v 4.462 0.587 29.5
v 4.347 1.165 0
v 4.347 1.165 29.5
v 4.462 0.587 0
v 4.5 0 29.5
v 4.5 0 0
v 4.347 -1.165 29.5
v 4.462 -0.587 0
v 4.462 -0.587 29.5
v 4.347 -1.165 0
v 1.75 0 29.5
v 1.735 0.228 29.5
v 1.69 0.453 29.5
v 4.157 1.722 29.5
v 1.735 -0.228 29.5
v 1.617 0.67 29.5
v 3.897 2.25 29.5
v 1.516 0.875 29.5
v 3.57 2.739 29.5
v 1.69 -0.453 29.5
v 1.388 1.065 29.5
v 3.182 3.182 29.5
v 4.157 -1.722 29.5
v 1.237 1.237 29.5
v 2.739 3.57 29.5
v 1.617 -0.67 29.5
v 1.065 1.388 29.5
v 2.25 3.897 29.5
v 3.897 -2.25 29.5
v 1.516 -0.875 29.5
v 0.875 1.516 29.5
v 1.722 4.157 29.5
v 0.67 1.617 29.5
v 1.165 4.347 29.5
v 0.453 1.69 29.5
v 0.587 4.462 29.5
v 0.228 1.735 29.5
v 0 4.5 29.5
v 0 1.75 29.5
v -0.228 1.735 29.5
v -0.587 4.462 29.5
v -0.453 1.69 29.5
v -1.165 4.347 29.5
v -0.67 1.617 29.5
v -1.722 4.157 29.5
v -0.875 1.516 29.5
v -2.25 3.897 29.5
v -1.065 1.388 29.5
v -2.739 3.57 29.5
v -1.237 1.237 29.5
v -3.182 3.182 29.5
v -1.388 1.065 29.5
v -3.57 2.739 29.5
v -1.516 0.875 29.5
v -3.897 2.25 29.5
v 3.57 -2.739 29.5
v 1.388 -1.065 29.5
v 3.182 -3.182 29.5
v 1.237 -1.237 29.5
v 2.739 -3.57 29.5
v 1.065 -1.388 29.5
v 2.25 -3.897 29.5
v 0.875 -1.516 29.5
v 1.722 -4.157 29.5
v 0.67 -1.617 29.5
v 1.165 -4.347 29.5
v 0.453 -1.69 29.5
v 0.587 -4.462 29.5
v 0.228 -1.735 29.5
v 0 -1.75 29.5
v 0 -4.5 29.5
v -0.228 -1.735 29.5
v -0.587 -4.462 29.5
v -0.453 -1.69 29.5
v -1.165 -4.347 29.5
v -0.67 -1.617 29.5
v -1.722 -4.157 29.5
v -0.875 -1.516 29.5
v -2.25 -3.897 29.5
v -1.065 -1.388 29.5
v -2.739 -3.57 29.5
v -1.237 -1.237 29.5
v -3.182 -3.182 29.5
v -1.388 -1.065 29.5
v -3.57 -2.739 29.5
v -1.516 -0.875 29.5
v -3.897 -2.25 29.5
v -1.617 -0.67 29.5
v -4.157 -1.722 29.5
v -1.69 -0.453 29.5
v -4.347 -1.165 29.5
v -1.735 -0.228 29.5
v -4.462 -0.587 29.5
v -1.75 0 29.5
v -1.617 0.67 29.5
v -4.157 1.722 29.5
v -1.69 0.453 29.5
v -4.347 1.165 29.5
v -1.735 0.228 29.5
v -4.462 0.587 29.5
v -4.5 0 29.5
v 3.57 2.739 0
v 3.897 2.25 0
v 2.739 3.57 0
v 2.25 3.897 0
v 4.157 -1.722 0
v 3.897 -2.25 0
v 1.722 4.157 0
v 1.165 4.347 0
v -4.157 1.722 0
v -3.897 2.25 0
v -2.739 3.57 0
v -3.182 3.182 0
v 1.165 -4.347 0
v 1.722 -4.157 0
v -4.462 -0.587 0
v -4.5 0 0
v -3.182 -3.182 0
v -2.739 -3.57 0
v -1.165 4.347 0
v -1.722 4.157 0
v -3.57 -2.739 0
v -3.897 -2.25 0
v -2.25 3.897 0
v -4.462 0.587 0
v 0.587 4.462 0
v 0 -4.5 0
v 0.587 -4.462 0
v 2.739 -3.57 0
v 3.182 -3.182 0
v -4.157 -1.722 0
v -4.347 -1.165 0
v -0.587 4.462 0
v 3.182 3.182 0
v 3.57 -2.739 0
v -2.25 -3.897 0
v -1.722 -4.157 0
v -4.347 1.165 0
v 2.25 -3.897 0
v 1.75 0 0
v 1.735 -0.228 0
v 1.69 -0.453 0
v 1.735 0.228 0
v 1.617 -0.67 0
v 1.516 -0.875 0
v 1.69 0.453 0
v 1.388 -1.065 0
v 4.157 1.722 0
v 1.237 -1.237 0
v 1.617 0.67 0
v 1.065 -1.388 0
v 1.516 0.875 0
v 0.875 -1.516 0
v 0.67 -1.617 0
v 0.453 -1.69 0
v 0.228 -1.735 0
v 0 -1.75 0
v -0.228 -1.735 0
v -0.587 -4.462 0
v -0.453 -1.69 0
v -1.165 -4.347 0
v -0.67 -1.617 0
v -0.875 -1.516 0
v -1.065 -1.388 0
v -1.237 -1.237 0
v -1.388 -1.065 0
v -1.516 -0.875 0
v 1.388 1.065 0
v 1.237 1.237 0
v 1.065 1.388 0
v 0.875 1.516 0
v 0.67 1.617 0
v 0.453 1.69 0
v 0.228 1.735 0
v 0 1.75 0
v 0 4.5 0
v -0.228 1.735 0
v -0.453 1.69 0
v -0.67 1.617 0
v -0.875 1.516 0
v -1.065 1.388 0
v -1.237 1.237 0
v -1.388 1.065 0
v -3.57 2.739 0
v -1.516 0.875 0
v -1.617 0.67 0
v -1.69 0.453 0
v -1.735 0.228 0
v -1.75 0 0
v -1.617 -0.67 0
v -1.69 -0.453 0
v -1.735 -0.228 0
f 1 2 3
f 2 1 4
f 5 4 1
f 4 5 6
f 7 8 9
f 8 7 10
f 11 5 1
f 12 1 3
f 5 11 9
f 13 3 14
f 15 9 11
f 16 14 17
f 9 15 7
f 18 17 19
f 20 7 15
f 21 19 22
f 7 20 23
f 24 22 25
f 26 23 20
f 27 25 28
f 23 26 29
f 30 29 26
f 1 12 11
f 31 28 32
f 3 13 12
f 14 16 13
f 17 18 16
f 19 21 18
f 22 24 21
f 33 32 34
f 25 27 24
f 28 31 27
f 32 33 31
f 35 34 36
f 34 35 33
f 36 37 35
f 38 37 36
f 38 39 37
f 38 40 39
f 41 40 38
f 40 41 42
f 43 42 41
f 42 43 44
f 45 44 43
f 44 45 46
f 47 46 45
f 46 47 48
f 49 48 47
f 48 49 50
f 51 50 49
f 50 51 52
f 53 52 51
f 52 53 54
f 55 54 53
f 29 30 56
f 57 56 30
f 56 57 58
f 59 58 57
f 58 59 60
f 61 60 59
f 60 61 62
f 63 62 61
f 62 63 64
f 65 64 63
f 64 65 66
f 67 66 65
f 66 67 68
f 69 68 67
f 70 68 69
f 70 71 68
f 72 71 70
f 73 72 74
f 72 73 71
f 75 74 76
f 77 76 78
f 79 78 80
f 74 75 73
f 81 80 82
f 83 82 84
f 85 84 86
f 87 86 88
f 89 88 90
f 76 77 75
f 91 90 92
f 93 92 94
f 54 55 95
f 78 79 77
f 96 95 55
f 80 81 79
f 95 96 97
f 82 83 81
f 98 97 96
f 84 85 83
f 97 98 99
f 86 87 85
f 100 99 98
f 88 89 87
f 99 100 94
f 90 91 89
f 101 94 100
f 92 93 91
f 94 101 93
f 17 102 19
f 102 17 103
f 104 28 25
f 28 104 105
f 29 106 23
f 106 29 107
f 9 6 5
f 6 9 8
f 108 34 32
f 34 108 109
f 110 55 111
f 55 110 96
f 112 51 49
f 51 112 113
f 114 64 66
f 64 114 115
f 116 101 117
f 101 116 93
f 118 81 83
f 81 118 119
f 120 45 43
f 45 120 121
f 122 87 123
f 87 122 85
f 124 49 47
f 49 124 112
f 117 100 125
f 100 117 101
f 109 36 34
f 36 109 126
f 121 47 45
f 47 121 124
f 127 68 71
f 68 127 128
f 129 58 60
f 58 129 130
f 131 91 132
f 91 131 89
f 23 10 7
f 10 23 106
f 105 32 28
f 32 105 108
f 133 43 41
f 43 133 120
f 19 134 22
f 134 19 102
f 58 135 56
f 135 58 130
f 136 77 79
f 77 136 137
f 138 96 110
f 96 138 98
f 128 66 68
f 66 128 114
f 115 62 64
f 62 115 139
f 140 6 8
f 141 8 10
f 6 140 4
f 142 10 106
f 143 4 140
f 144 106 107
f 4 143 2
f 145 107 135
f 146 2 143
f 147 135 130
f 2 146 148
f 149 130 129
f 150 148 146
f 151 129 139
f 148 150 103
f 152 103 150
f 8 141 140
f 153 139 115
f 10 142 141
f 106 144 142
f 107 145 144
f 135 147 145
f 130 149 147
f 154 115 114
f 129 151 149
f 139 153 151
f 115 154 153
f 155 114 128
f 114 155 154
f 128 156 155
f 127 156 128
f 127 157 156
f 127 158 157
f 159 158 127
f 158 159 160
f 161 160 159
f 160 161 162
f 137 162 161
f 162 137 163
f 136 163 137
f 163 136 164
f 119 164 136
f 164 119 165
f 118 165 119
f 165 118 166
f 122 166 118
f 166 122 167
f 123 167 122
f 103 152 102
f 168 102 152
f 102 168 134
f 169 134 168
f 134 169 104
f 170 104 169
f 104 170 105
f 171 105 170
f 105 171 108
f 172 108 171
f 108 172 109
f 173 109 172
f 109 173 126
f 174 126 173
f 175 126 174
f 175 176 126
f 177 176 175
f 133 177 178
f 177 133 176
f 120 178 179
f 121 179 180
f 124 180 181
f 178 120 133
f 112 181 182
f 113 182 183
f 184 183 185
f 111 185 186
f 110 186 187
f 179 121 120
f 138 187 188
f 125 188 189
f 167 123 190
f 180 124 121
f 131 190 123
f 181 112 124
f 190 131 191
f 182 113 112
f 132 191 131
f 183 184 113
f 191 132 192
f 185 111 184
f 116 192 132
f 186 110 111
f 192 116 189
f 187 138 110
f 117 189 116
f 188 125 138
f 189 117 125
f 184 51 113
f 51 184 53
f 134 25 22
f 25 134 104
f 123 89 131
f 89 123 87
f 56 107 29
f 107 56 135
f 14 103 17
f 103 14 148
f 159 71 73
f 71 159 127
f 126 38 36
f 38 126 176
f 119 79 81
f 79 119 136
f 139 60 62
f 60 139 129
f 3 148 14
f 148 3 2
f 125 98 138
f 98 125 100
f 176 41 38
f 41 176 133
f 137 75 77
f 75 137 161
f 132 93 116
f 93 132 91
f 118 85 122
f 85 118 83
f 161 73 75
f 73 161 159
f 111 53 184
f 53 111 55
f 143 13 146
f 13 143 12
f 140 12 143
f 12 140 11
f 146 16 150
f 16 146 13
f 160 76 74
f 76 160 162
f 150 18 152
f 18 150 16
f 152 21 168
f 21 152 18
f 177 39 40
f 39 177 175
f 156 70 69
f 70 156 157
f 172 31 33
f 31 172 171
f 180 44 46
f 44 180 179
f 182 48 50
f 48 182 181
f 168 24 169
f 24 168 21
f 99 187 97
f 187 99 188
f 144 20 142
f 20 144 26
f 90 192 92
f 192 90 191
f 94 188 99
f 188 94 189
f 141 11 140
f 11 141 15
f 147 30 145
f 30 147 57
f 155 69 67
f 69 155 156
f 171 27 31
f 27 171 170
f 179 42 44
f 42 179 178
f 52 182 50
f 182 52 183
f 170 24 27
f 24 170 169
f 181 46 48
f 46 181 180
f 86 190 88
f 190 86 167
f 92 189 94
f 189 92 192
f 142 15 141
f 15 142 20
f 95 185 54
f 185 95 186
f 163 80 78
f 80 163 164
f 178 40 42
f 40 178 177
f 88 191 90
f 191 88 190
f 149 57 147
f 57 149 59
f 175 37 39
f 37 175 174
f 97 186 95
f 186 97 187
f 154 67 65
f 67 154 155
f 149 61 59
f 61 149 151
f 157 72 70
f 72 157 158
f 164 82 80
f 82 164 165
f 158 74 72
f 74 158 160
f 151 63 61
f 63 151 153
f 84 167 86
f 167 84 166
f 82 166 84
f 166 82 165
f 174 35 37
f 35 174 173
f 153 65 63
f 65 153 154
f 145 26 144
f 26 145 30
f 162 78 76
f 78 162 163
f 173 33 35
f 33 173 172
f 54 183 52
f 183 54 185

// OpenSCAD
// file: parameters.scad
// =============================================================================
// Gen-BR — nightly 2026-10-09 (physics_scorer, honest magpylib watts)
// Rotor-only swap for Gen-BO: the diametric Ø5 assists move from ±7 mm to ±6.2 mm around the R50 pole ring (R43.8/50/56.2), the closest spacing that still leaves a 0.9 mm printed web between Ø5.3 pockets (rule ≥0.8). Everything else — bobbins, 595 t windings, stator, Ø134 steel — is Gen-BO. Tonight's 138-row refine scan (ring radius 49–51, coil radii ±0.5, build ±0.4, copper height 7.9–8.3) found nothing better: the 8p/6c flush-seat family is saturated under the ~370 m wire budget, so this is a hair-width step (about +0.2 % over Gen-BO), not a breakthrough.
// Clocking 0 deg (magnets N facing S) + D-flat keyed bore + index notch + flip-symmetric hole map.
// Windable 2-piece bobbin; turns = physics_scorer turns_fit; copper only between flanges.
// Steel back-iron: 2× Ø134 × 4.76 mm (3/16") mild-steel discs (steel_backiron_disc.dxf); magnets sit ON the steel
// (through-pockets) -> score with --back-iron.
// =============================================================================
topology            = "dual_rotor";

// --- Wire / winding (physics_scorer winding-fit) -------------------------------
wire_awg            = 26;
wire_od             = 0.45;     // insulated OD mm (bare 0.405)
fill_realistic      = 0.65;     // insulated-wire area / window (DENSE layered wind with a jig; scorer cap 0.65)
turns               = 595;       // = physics_scorer turns_fit (do NOT raise)
coil_former_type    = "bobbin";
coil_core_inset     = 18.00;     // radial copper build: hub = copper boundary inset by this
wind_build_axial    = 0.0;      // nothing proud of the flanges
wind_build_radial   = 0.0;

// --- Bobbin (base + lid) ---------------------------------------------------------
coil_id_r           = 28.00;    // copper boundary sector
coil_od_r           = 70.00;
span_deg            = 53.24;    // = pitch - 2*asin((wall+0.85)/coil_id_r) -> >=1.2 mm stator web
former_web          = 8.10;     // copper height between flanges (TALL copper: steel keeps Bz up)
flange_t            = 0.80;     // >= 0.8 mm FDM wall rule (tall winds push on the flanges)
wall                = 0.80;     // flange lip beyond copper
former_bare_h       = former_web + 2 * flange_t;
coil_envelope_h     = former_bare_h + 2 * wind_build_axial;
tab_w               = 7.0;
tab_len             = 7.0;
tab_h               = former_bare_h / 2;
pin_d               = 1.9;      // 1.75 mm filament locating pin
coil_mount_r        = coil_od_r + 0.2 + 4.0;
lead_y              = 1.6;
lead_slot_w         = 0.9;
lead_groove_d       = 0.6;

// --- Gap -------------------------------------------------------------------------
run_clear           = 0.50;     // rotor face -> flange
gap_spacer_h        = run_clear + wind_build_axial;
m2m                 = coil_envelope_h + 2 * run_clear;   // rotor face to rotor face (= gap_sleeve length)

// --- Stator ----------------------------------------------------------------------
coil_stations       = 6;
bay_clear           = 0.25;
stator_thick        = former_bare_h;                        // bobbins flush both faces
stator_od           = 158;
shaft_clear_stator  = 14.0;     // stator is static; gap sleeve OD 12 spins inside

// --- Rotor(s) --------------------------------------------------------------------
magnet_Br           = 1.43;     // N52
magnet_d_large      = 20.0;
magnet_h_large      = 5.0;      // one O20x5 per pocket
magnet_h_small      = 5.0;      // one O5x5 per pocket
halbach_magnetisation = "diametric"; // O5x5 assist magnets MUST be DIAMETRICALLY magnetised (tangential)
rotor_b_same_axis   = true;     // same-index magnets share one axis: N faces S across the gap
large_pocket_d      = 20.3;
small_pocket_d      = 5.3;
pocket_h            = 5.00;     // THROUGH the carrier: magnet back face sits on the steel disc (FLUSH seat: carrier = magnet height, magnet face level with the rotor face)
large_n             = 8;
R_large             = 50.0;
R_small_inner       = 43.8;
R_small_mid         = 50.0;
R_small_outer       = 56.2;
small_r_list        = [R_small_inner, R_small_mid, R_small_outer];   // O5 pockets between poles
carrier_od          = 134.0;
carrier_thick       = pocket_h;
hub_h               = 12.0;     // > steel_t + insert: radial set-screw clears the steel
hub_od              = 24.0;     // slim hub so the M4 brace rods fit at R~18 inside the coil ring
hub_insert_d        = 4.0;      // M3 heat-set insert, radial, bears on the D-flat
rotor_b_offset_deg  = 0.0;      // CLOCKING: magnets directly opposite
shaft_key           = "dflat";
dflat_depth         = 0.5;      // 8 mm shaft with 0.5 mm flat (7.5 across flat)
index_notch_d       = 3.0;

// --- Steel back-iron (buyable laser-cut) -------------------------------------------
steel_t             = 4.76;      // mild steel thickness (image method ignores it; sized from steel_flux.py so the return path stays well below saturation)
steel_center_hole   = 26.0;     // slips over the rotor hub (OD 24)
steel_od            = carrier_od;   // steel disc OD = rotor carrier OD

// --- Modular MAX interface ----------------------------------------------------------
shaft_bore          = 8.35;
dflat_x             = 4.0 - dflat_depth + (shaft_bore - 8.0) / 2;
bearing_d           = 21.85;
bearing_h           = 7.2;
m3_clear            = 3.5;
bolt_r_inner        = 30.0;     // M3 steel-disc clamp bolts (inside the magnet ring)
bolt_n_inner        = 4;
bolt_inner_angles   = [0, 90, 180, 270];
bolt_r_outer        = 63.0;     // M3 steel-disc clamp bolts (outside the magnet ring)
bolt_outer_angles   = [45, 135, 225, 315];
flange_bolt_r       = 73.0;     // frame rods: OUTSIDE the rotor OD (rotors spin inside them)
flange_bolt_n       = 6;
flange_bolt_offset  = 30.00;    // between coil stations -> never cuts a lead groove/tab
brace_r             = 18.0;
brace_d             = 4.3;      // temporary M4 jack rods (assembly only)
brace_n             = 4;
brace_angles        = [45, 135, 225, 315];          // flip-symmetric

spacer_pad_od       = 14.0;
spacer_pad_id       = m3_clear;
endbell_od          = 158;
endbell_thick       = 8.0;
endbell_shaft_clear = 10.0;
collar_h            = 10.0;
standoff_od         = 9.0;
frame_standoff_h    = run_clear + carrier_thick + hub_h + collar_h + 2.0;
sleeve_od           = 12.0;
plate_max_mm        = 410;

$fn = 64;
// main file
// Gen-BR — frame standoff tube between stator and an endbell, on each M3 frame rod (outside rotor OD).
// Print x12. Height = frame_standoff_h (rotor + steel + hub + collar + running clearance).
include <parameters.scad>;
$fn = 48;
difference() {
    cylinder(d=standoff_od, h=frame_standoff_h);
    translate([0, 0, -0.1]) cylinder(d=m3_clear, h=frame_standoff_h + 0.2);
}
